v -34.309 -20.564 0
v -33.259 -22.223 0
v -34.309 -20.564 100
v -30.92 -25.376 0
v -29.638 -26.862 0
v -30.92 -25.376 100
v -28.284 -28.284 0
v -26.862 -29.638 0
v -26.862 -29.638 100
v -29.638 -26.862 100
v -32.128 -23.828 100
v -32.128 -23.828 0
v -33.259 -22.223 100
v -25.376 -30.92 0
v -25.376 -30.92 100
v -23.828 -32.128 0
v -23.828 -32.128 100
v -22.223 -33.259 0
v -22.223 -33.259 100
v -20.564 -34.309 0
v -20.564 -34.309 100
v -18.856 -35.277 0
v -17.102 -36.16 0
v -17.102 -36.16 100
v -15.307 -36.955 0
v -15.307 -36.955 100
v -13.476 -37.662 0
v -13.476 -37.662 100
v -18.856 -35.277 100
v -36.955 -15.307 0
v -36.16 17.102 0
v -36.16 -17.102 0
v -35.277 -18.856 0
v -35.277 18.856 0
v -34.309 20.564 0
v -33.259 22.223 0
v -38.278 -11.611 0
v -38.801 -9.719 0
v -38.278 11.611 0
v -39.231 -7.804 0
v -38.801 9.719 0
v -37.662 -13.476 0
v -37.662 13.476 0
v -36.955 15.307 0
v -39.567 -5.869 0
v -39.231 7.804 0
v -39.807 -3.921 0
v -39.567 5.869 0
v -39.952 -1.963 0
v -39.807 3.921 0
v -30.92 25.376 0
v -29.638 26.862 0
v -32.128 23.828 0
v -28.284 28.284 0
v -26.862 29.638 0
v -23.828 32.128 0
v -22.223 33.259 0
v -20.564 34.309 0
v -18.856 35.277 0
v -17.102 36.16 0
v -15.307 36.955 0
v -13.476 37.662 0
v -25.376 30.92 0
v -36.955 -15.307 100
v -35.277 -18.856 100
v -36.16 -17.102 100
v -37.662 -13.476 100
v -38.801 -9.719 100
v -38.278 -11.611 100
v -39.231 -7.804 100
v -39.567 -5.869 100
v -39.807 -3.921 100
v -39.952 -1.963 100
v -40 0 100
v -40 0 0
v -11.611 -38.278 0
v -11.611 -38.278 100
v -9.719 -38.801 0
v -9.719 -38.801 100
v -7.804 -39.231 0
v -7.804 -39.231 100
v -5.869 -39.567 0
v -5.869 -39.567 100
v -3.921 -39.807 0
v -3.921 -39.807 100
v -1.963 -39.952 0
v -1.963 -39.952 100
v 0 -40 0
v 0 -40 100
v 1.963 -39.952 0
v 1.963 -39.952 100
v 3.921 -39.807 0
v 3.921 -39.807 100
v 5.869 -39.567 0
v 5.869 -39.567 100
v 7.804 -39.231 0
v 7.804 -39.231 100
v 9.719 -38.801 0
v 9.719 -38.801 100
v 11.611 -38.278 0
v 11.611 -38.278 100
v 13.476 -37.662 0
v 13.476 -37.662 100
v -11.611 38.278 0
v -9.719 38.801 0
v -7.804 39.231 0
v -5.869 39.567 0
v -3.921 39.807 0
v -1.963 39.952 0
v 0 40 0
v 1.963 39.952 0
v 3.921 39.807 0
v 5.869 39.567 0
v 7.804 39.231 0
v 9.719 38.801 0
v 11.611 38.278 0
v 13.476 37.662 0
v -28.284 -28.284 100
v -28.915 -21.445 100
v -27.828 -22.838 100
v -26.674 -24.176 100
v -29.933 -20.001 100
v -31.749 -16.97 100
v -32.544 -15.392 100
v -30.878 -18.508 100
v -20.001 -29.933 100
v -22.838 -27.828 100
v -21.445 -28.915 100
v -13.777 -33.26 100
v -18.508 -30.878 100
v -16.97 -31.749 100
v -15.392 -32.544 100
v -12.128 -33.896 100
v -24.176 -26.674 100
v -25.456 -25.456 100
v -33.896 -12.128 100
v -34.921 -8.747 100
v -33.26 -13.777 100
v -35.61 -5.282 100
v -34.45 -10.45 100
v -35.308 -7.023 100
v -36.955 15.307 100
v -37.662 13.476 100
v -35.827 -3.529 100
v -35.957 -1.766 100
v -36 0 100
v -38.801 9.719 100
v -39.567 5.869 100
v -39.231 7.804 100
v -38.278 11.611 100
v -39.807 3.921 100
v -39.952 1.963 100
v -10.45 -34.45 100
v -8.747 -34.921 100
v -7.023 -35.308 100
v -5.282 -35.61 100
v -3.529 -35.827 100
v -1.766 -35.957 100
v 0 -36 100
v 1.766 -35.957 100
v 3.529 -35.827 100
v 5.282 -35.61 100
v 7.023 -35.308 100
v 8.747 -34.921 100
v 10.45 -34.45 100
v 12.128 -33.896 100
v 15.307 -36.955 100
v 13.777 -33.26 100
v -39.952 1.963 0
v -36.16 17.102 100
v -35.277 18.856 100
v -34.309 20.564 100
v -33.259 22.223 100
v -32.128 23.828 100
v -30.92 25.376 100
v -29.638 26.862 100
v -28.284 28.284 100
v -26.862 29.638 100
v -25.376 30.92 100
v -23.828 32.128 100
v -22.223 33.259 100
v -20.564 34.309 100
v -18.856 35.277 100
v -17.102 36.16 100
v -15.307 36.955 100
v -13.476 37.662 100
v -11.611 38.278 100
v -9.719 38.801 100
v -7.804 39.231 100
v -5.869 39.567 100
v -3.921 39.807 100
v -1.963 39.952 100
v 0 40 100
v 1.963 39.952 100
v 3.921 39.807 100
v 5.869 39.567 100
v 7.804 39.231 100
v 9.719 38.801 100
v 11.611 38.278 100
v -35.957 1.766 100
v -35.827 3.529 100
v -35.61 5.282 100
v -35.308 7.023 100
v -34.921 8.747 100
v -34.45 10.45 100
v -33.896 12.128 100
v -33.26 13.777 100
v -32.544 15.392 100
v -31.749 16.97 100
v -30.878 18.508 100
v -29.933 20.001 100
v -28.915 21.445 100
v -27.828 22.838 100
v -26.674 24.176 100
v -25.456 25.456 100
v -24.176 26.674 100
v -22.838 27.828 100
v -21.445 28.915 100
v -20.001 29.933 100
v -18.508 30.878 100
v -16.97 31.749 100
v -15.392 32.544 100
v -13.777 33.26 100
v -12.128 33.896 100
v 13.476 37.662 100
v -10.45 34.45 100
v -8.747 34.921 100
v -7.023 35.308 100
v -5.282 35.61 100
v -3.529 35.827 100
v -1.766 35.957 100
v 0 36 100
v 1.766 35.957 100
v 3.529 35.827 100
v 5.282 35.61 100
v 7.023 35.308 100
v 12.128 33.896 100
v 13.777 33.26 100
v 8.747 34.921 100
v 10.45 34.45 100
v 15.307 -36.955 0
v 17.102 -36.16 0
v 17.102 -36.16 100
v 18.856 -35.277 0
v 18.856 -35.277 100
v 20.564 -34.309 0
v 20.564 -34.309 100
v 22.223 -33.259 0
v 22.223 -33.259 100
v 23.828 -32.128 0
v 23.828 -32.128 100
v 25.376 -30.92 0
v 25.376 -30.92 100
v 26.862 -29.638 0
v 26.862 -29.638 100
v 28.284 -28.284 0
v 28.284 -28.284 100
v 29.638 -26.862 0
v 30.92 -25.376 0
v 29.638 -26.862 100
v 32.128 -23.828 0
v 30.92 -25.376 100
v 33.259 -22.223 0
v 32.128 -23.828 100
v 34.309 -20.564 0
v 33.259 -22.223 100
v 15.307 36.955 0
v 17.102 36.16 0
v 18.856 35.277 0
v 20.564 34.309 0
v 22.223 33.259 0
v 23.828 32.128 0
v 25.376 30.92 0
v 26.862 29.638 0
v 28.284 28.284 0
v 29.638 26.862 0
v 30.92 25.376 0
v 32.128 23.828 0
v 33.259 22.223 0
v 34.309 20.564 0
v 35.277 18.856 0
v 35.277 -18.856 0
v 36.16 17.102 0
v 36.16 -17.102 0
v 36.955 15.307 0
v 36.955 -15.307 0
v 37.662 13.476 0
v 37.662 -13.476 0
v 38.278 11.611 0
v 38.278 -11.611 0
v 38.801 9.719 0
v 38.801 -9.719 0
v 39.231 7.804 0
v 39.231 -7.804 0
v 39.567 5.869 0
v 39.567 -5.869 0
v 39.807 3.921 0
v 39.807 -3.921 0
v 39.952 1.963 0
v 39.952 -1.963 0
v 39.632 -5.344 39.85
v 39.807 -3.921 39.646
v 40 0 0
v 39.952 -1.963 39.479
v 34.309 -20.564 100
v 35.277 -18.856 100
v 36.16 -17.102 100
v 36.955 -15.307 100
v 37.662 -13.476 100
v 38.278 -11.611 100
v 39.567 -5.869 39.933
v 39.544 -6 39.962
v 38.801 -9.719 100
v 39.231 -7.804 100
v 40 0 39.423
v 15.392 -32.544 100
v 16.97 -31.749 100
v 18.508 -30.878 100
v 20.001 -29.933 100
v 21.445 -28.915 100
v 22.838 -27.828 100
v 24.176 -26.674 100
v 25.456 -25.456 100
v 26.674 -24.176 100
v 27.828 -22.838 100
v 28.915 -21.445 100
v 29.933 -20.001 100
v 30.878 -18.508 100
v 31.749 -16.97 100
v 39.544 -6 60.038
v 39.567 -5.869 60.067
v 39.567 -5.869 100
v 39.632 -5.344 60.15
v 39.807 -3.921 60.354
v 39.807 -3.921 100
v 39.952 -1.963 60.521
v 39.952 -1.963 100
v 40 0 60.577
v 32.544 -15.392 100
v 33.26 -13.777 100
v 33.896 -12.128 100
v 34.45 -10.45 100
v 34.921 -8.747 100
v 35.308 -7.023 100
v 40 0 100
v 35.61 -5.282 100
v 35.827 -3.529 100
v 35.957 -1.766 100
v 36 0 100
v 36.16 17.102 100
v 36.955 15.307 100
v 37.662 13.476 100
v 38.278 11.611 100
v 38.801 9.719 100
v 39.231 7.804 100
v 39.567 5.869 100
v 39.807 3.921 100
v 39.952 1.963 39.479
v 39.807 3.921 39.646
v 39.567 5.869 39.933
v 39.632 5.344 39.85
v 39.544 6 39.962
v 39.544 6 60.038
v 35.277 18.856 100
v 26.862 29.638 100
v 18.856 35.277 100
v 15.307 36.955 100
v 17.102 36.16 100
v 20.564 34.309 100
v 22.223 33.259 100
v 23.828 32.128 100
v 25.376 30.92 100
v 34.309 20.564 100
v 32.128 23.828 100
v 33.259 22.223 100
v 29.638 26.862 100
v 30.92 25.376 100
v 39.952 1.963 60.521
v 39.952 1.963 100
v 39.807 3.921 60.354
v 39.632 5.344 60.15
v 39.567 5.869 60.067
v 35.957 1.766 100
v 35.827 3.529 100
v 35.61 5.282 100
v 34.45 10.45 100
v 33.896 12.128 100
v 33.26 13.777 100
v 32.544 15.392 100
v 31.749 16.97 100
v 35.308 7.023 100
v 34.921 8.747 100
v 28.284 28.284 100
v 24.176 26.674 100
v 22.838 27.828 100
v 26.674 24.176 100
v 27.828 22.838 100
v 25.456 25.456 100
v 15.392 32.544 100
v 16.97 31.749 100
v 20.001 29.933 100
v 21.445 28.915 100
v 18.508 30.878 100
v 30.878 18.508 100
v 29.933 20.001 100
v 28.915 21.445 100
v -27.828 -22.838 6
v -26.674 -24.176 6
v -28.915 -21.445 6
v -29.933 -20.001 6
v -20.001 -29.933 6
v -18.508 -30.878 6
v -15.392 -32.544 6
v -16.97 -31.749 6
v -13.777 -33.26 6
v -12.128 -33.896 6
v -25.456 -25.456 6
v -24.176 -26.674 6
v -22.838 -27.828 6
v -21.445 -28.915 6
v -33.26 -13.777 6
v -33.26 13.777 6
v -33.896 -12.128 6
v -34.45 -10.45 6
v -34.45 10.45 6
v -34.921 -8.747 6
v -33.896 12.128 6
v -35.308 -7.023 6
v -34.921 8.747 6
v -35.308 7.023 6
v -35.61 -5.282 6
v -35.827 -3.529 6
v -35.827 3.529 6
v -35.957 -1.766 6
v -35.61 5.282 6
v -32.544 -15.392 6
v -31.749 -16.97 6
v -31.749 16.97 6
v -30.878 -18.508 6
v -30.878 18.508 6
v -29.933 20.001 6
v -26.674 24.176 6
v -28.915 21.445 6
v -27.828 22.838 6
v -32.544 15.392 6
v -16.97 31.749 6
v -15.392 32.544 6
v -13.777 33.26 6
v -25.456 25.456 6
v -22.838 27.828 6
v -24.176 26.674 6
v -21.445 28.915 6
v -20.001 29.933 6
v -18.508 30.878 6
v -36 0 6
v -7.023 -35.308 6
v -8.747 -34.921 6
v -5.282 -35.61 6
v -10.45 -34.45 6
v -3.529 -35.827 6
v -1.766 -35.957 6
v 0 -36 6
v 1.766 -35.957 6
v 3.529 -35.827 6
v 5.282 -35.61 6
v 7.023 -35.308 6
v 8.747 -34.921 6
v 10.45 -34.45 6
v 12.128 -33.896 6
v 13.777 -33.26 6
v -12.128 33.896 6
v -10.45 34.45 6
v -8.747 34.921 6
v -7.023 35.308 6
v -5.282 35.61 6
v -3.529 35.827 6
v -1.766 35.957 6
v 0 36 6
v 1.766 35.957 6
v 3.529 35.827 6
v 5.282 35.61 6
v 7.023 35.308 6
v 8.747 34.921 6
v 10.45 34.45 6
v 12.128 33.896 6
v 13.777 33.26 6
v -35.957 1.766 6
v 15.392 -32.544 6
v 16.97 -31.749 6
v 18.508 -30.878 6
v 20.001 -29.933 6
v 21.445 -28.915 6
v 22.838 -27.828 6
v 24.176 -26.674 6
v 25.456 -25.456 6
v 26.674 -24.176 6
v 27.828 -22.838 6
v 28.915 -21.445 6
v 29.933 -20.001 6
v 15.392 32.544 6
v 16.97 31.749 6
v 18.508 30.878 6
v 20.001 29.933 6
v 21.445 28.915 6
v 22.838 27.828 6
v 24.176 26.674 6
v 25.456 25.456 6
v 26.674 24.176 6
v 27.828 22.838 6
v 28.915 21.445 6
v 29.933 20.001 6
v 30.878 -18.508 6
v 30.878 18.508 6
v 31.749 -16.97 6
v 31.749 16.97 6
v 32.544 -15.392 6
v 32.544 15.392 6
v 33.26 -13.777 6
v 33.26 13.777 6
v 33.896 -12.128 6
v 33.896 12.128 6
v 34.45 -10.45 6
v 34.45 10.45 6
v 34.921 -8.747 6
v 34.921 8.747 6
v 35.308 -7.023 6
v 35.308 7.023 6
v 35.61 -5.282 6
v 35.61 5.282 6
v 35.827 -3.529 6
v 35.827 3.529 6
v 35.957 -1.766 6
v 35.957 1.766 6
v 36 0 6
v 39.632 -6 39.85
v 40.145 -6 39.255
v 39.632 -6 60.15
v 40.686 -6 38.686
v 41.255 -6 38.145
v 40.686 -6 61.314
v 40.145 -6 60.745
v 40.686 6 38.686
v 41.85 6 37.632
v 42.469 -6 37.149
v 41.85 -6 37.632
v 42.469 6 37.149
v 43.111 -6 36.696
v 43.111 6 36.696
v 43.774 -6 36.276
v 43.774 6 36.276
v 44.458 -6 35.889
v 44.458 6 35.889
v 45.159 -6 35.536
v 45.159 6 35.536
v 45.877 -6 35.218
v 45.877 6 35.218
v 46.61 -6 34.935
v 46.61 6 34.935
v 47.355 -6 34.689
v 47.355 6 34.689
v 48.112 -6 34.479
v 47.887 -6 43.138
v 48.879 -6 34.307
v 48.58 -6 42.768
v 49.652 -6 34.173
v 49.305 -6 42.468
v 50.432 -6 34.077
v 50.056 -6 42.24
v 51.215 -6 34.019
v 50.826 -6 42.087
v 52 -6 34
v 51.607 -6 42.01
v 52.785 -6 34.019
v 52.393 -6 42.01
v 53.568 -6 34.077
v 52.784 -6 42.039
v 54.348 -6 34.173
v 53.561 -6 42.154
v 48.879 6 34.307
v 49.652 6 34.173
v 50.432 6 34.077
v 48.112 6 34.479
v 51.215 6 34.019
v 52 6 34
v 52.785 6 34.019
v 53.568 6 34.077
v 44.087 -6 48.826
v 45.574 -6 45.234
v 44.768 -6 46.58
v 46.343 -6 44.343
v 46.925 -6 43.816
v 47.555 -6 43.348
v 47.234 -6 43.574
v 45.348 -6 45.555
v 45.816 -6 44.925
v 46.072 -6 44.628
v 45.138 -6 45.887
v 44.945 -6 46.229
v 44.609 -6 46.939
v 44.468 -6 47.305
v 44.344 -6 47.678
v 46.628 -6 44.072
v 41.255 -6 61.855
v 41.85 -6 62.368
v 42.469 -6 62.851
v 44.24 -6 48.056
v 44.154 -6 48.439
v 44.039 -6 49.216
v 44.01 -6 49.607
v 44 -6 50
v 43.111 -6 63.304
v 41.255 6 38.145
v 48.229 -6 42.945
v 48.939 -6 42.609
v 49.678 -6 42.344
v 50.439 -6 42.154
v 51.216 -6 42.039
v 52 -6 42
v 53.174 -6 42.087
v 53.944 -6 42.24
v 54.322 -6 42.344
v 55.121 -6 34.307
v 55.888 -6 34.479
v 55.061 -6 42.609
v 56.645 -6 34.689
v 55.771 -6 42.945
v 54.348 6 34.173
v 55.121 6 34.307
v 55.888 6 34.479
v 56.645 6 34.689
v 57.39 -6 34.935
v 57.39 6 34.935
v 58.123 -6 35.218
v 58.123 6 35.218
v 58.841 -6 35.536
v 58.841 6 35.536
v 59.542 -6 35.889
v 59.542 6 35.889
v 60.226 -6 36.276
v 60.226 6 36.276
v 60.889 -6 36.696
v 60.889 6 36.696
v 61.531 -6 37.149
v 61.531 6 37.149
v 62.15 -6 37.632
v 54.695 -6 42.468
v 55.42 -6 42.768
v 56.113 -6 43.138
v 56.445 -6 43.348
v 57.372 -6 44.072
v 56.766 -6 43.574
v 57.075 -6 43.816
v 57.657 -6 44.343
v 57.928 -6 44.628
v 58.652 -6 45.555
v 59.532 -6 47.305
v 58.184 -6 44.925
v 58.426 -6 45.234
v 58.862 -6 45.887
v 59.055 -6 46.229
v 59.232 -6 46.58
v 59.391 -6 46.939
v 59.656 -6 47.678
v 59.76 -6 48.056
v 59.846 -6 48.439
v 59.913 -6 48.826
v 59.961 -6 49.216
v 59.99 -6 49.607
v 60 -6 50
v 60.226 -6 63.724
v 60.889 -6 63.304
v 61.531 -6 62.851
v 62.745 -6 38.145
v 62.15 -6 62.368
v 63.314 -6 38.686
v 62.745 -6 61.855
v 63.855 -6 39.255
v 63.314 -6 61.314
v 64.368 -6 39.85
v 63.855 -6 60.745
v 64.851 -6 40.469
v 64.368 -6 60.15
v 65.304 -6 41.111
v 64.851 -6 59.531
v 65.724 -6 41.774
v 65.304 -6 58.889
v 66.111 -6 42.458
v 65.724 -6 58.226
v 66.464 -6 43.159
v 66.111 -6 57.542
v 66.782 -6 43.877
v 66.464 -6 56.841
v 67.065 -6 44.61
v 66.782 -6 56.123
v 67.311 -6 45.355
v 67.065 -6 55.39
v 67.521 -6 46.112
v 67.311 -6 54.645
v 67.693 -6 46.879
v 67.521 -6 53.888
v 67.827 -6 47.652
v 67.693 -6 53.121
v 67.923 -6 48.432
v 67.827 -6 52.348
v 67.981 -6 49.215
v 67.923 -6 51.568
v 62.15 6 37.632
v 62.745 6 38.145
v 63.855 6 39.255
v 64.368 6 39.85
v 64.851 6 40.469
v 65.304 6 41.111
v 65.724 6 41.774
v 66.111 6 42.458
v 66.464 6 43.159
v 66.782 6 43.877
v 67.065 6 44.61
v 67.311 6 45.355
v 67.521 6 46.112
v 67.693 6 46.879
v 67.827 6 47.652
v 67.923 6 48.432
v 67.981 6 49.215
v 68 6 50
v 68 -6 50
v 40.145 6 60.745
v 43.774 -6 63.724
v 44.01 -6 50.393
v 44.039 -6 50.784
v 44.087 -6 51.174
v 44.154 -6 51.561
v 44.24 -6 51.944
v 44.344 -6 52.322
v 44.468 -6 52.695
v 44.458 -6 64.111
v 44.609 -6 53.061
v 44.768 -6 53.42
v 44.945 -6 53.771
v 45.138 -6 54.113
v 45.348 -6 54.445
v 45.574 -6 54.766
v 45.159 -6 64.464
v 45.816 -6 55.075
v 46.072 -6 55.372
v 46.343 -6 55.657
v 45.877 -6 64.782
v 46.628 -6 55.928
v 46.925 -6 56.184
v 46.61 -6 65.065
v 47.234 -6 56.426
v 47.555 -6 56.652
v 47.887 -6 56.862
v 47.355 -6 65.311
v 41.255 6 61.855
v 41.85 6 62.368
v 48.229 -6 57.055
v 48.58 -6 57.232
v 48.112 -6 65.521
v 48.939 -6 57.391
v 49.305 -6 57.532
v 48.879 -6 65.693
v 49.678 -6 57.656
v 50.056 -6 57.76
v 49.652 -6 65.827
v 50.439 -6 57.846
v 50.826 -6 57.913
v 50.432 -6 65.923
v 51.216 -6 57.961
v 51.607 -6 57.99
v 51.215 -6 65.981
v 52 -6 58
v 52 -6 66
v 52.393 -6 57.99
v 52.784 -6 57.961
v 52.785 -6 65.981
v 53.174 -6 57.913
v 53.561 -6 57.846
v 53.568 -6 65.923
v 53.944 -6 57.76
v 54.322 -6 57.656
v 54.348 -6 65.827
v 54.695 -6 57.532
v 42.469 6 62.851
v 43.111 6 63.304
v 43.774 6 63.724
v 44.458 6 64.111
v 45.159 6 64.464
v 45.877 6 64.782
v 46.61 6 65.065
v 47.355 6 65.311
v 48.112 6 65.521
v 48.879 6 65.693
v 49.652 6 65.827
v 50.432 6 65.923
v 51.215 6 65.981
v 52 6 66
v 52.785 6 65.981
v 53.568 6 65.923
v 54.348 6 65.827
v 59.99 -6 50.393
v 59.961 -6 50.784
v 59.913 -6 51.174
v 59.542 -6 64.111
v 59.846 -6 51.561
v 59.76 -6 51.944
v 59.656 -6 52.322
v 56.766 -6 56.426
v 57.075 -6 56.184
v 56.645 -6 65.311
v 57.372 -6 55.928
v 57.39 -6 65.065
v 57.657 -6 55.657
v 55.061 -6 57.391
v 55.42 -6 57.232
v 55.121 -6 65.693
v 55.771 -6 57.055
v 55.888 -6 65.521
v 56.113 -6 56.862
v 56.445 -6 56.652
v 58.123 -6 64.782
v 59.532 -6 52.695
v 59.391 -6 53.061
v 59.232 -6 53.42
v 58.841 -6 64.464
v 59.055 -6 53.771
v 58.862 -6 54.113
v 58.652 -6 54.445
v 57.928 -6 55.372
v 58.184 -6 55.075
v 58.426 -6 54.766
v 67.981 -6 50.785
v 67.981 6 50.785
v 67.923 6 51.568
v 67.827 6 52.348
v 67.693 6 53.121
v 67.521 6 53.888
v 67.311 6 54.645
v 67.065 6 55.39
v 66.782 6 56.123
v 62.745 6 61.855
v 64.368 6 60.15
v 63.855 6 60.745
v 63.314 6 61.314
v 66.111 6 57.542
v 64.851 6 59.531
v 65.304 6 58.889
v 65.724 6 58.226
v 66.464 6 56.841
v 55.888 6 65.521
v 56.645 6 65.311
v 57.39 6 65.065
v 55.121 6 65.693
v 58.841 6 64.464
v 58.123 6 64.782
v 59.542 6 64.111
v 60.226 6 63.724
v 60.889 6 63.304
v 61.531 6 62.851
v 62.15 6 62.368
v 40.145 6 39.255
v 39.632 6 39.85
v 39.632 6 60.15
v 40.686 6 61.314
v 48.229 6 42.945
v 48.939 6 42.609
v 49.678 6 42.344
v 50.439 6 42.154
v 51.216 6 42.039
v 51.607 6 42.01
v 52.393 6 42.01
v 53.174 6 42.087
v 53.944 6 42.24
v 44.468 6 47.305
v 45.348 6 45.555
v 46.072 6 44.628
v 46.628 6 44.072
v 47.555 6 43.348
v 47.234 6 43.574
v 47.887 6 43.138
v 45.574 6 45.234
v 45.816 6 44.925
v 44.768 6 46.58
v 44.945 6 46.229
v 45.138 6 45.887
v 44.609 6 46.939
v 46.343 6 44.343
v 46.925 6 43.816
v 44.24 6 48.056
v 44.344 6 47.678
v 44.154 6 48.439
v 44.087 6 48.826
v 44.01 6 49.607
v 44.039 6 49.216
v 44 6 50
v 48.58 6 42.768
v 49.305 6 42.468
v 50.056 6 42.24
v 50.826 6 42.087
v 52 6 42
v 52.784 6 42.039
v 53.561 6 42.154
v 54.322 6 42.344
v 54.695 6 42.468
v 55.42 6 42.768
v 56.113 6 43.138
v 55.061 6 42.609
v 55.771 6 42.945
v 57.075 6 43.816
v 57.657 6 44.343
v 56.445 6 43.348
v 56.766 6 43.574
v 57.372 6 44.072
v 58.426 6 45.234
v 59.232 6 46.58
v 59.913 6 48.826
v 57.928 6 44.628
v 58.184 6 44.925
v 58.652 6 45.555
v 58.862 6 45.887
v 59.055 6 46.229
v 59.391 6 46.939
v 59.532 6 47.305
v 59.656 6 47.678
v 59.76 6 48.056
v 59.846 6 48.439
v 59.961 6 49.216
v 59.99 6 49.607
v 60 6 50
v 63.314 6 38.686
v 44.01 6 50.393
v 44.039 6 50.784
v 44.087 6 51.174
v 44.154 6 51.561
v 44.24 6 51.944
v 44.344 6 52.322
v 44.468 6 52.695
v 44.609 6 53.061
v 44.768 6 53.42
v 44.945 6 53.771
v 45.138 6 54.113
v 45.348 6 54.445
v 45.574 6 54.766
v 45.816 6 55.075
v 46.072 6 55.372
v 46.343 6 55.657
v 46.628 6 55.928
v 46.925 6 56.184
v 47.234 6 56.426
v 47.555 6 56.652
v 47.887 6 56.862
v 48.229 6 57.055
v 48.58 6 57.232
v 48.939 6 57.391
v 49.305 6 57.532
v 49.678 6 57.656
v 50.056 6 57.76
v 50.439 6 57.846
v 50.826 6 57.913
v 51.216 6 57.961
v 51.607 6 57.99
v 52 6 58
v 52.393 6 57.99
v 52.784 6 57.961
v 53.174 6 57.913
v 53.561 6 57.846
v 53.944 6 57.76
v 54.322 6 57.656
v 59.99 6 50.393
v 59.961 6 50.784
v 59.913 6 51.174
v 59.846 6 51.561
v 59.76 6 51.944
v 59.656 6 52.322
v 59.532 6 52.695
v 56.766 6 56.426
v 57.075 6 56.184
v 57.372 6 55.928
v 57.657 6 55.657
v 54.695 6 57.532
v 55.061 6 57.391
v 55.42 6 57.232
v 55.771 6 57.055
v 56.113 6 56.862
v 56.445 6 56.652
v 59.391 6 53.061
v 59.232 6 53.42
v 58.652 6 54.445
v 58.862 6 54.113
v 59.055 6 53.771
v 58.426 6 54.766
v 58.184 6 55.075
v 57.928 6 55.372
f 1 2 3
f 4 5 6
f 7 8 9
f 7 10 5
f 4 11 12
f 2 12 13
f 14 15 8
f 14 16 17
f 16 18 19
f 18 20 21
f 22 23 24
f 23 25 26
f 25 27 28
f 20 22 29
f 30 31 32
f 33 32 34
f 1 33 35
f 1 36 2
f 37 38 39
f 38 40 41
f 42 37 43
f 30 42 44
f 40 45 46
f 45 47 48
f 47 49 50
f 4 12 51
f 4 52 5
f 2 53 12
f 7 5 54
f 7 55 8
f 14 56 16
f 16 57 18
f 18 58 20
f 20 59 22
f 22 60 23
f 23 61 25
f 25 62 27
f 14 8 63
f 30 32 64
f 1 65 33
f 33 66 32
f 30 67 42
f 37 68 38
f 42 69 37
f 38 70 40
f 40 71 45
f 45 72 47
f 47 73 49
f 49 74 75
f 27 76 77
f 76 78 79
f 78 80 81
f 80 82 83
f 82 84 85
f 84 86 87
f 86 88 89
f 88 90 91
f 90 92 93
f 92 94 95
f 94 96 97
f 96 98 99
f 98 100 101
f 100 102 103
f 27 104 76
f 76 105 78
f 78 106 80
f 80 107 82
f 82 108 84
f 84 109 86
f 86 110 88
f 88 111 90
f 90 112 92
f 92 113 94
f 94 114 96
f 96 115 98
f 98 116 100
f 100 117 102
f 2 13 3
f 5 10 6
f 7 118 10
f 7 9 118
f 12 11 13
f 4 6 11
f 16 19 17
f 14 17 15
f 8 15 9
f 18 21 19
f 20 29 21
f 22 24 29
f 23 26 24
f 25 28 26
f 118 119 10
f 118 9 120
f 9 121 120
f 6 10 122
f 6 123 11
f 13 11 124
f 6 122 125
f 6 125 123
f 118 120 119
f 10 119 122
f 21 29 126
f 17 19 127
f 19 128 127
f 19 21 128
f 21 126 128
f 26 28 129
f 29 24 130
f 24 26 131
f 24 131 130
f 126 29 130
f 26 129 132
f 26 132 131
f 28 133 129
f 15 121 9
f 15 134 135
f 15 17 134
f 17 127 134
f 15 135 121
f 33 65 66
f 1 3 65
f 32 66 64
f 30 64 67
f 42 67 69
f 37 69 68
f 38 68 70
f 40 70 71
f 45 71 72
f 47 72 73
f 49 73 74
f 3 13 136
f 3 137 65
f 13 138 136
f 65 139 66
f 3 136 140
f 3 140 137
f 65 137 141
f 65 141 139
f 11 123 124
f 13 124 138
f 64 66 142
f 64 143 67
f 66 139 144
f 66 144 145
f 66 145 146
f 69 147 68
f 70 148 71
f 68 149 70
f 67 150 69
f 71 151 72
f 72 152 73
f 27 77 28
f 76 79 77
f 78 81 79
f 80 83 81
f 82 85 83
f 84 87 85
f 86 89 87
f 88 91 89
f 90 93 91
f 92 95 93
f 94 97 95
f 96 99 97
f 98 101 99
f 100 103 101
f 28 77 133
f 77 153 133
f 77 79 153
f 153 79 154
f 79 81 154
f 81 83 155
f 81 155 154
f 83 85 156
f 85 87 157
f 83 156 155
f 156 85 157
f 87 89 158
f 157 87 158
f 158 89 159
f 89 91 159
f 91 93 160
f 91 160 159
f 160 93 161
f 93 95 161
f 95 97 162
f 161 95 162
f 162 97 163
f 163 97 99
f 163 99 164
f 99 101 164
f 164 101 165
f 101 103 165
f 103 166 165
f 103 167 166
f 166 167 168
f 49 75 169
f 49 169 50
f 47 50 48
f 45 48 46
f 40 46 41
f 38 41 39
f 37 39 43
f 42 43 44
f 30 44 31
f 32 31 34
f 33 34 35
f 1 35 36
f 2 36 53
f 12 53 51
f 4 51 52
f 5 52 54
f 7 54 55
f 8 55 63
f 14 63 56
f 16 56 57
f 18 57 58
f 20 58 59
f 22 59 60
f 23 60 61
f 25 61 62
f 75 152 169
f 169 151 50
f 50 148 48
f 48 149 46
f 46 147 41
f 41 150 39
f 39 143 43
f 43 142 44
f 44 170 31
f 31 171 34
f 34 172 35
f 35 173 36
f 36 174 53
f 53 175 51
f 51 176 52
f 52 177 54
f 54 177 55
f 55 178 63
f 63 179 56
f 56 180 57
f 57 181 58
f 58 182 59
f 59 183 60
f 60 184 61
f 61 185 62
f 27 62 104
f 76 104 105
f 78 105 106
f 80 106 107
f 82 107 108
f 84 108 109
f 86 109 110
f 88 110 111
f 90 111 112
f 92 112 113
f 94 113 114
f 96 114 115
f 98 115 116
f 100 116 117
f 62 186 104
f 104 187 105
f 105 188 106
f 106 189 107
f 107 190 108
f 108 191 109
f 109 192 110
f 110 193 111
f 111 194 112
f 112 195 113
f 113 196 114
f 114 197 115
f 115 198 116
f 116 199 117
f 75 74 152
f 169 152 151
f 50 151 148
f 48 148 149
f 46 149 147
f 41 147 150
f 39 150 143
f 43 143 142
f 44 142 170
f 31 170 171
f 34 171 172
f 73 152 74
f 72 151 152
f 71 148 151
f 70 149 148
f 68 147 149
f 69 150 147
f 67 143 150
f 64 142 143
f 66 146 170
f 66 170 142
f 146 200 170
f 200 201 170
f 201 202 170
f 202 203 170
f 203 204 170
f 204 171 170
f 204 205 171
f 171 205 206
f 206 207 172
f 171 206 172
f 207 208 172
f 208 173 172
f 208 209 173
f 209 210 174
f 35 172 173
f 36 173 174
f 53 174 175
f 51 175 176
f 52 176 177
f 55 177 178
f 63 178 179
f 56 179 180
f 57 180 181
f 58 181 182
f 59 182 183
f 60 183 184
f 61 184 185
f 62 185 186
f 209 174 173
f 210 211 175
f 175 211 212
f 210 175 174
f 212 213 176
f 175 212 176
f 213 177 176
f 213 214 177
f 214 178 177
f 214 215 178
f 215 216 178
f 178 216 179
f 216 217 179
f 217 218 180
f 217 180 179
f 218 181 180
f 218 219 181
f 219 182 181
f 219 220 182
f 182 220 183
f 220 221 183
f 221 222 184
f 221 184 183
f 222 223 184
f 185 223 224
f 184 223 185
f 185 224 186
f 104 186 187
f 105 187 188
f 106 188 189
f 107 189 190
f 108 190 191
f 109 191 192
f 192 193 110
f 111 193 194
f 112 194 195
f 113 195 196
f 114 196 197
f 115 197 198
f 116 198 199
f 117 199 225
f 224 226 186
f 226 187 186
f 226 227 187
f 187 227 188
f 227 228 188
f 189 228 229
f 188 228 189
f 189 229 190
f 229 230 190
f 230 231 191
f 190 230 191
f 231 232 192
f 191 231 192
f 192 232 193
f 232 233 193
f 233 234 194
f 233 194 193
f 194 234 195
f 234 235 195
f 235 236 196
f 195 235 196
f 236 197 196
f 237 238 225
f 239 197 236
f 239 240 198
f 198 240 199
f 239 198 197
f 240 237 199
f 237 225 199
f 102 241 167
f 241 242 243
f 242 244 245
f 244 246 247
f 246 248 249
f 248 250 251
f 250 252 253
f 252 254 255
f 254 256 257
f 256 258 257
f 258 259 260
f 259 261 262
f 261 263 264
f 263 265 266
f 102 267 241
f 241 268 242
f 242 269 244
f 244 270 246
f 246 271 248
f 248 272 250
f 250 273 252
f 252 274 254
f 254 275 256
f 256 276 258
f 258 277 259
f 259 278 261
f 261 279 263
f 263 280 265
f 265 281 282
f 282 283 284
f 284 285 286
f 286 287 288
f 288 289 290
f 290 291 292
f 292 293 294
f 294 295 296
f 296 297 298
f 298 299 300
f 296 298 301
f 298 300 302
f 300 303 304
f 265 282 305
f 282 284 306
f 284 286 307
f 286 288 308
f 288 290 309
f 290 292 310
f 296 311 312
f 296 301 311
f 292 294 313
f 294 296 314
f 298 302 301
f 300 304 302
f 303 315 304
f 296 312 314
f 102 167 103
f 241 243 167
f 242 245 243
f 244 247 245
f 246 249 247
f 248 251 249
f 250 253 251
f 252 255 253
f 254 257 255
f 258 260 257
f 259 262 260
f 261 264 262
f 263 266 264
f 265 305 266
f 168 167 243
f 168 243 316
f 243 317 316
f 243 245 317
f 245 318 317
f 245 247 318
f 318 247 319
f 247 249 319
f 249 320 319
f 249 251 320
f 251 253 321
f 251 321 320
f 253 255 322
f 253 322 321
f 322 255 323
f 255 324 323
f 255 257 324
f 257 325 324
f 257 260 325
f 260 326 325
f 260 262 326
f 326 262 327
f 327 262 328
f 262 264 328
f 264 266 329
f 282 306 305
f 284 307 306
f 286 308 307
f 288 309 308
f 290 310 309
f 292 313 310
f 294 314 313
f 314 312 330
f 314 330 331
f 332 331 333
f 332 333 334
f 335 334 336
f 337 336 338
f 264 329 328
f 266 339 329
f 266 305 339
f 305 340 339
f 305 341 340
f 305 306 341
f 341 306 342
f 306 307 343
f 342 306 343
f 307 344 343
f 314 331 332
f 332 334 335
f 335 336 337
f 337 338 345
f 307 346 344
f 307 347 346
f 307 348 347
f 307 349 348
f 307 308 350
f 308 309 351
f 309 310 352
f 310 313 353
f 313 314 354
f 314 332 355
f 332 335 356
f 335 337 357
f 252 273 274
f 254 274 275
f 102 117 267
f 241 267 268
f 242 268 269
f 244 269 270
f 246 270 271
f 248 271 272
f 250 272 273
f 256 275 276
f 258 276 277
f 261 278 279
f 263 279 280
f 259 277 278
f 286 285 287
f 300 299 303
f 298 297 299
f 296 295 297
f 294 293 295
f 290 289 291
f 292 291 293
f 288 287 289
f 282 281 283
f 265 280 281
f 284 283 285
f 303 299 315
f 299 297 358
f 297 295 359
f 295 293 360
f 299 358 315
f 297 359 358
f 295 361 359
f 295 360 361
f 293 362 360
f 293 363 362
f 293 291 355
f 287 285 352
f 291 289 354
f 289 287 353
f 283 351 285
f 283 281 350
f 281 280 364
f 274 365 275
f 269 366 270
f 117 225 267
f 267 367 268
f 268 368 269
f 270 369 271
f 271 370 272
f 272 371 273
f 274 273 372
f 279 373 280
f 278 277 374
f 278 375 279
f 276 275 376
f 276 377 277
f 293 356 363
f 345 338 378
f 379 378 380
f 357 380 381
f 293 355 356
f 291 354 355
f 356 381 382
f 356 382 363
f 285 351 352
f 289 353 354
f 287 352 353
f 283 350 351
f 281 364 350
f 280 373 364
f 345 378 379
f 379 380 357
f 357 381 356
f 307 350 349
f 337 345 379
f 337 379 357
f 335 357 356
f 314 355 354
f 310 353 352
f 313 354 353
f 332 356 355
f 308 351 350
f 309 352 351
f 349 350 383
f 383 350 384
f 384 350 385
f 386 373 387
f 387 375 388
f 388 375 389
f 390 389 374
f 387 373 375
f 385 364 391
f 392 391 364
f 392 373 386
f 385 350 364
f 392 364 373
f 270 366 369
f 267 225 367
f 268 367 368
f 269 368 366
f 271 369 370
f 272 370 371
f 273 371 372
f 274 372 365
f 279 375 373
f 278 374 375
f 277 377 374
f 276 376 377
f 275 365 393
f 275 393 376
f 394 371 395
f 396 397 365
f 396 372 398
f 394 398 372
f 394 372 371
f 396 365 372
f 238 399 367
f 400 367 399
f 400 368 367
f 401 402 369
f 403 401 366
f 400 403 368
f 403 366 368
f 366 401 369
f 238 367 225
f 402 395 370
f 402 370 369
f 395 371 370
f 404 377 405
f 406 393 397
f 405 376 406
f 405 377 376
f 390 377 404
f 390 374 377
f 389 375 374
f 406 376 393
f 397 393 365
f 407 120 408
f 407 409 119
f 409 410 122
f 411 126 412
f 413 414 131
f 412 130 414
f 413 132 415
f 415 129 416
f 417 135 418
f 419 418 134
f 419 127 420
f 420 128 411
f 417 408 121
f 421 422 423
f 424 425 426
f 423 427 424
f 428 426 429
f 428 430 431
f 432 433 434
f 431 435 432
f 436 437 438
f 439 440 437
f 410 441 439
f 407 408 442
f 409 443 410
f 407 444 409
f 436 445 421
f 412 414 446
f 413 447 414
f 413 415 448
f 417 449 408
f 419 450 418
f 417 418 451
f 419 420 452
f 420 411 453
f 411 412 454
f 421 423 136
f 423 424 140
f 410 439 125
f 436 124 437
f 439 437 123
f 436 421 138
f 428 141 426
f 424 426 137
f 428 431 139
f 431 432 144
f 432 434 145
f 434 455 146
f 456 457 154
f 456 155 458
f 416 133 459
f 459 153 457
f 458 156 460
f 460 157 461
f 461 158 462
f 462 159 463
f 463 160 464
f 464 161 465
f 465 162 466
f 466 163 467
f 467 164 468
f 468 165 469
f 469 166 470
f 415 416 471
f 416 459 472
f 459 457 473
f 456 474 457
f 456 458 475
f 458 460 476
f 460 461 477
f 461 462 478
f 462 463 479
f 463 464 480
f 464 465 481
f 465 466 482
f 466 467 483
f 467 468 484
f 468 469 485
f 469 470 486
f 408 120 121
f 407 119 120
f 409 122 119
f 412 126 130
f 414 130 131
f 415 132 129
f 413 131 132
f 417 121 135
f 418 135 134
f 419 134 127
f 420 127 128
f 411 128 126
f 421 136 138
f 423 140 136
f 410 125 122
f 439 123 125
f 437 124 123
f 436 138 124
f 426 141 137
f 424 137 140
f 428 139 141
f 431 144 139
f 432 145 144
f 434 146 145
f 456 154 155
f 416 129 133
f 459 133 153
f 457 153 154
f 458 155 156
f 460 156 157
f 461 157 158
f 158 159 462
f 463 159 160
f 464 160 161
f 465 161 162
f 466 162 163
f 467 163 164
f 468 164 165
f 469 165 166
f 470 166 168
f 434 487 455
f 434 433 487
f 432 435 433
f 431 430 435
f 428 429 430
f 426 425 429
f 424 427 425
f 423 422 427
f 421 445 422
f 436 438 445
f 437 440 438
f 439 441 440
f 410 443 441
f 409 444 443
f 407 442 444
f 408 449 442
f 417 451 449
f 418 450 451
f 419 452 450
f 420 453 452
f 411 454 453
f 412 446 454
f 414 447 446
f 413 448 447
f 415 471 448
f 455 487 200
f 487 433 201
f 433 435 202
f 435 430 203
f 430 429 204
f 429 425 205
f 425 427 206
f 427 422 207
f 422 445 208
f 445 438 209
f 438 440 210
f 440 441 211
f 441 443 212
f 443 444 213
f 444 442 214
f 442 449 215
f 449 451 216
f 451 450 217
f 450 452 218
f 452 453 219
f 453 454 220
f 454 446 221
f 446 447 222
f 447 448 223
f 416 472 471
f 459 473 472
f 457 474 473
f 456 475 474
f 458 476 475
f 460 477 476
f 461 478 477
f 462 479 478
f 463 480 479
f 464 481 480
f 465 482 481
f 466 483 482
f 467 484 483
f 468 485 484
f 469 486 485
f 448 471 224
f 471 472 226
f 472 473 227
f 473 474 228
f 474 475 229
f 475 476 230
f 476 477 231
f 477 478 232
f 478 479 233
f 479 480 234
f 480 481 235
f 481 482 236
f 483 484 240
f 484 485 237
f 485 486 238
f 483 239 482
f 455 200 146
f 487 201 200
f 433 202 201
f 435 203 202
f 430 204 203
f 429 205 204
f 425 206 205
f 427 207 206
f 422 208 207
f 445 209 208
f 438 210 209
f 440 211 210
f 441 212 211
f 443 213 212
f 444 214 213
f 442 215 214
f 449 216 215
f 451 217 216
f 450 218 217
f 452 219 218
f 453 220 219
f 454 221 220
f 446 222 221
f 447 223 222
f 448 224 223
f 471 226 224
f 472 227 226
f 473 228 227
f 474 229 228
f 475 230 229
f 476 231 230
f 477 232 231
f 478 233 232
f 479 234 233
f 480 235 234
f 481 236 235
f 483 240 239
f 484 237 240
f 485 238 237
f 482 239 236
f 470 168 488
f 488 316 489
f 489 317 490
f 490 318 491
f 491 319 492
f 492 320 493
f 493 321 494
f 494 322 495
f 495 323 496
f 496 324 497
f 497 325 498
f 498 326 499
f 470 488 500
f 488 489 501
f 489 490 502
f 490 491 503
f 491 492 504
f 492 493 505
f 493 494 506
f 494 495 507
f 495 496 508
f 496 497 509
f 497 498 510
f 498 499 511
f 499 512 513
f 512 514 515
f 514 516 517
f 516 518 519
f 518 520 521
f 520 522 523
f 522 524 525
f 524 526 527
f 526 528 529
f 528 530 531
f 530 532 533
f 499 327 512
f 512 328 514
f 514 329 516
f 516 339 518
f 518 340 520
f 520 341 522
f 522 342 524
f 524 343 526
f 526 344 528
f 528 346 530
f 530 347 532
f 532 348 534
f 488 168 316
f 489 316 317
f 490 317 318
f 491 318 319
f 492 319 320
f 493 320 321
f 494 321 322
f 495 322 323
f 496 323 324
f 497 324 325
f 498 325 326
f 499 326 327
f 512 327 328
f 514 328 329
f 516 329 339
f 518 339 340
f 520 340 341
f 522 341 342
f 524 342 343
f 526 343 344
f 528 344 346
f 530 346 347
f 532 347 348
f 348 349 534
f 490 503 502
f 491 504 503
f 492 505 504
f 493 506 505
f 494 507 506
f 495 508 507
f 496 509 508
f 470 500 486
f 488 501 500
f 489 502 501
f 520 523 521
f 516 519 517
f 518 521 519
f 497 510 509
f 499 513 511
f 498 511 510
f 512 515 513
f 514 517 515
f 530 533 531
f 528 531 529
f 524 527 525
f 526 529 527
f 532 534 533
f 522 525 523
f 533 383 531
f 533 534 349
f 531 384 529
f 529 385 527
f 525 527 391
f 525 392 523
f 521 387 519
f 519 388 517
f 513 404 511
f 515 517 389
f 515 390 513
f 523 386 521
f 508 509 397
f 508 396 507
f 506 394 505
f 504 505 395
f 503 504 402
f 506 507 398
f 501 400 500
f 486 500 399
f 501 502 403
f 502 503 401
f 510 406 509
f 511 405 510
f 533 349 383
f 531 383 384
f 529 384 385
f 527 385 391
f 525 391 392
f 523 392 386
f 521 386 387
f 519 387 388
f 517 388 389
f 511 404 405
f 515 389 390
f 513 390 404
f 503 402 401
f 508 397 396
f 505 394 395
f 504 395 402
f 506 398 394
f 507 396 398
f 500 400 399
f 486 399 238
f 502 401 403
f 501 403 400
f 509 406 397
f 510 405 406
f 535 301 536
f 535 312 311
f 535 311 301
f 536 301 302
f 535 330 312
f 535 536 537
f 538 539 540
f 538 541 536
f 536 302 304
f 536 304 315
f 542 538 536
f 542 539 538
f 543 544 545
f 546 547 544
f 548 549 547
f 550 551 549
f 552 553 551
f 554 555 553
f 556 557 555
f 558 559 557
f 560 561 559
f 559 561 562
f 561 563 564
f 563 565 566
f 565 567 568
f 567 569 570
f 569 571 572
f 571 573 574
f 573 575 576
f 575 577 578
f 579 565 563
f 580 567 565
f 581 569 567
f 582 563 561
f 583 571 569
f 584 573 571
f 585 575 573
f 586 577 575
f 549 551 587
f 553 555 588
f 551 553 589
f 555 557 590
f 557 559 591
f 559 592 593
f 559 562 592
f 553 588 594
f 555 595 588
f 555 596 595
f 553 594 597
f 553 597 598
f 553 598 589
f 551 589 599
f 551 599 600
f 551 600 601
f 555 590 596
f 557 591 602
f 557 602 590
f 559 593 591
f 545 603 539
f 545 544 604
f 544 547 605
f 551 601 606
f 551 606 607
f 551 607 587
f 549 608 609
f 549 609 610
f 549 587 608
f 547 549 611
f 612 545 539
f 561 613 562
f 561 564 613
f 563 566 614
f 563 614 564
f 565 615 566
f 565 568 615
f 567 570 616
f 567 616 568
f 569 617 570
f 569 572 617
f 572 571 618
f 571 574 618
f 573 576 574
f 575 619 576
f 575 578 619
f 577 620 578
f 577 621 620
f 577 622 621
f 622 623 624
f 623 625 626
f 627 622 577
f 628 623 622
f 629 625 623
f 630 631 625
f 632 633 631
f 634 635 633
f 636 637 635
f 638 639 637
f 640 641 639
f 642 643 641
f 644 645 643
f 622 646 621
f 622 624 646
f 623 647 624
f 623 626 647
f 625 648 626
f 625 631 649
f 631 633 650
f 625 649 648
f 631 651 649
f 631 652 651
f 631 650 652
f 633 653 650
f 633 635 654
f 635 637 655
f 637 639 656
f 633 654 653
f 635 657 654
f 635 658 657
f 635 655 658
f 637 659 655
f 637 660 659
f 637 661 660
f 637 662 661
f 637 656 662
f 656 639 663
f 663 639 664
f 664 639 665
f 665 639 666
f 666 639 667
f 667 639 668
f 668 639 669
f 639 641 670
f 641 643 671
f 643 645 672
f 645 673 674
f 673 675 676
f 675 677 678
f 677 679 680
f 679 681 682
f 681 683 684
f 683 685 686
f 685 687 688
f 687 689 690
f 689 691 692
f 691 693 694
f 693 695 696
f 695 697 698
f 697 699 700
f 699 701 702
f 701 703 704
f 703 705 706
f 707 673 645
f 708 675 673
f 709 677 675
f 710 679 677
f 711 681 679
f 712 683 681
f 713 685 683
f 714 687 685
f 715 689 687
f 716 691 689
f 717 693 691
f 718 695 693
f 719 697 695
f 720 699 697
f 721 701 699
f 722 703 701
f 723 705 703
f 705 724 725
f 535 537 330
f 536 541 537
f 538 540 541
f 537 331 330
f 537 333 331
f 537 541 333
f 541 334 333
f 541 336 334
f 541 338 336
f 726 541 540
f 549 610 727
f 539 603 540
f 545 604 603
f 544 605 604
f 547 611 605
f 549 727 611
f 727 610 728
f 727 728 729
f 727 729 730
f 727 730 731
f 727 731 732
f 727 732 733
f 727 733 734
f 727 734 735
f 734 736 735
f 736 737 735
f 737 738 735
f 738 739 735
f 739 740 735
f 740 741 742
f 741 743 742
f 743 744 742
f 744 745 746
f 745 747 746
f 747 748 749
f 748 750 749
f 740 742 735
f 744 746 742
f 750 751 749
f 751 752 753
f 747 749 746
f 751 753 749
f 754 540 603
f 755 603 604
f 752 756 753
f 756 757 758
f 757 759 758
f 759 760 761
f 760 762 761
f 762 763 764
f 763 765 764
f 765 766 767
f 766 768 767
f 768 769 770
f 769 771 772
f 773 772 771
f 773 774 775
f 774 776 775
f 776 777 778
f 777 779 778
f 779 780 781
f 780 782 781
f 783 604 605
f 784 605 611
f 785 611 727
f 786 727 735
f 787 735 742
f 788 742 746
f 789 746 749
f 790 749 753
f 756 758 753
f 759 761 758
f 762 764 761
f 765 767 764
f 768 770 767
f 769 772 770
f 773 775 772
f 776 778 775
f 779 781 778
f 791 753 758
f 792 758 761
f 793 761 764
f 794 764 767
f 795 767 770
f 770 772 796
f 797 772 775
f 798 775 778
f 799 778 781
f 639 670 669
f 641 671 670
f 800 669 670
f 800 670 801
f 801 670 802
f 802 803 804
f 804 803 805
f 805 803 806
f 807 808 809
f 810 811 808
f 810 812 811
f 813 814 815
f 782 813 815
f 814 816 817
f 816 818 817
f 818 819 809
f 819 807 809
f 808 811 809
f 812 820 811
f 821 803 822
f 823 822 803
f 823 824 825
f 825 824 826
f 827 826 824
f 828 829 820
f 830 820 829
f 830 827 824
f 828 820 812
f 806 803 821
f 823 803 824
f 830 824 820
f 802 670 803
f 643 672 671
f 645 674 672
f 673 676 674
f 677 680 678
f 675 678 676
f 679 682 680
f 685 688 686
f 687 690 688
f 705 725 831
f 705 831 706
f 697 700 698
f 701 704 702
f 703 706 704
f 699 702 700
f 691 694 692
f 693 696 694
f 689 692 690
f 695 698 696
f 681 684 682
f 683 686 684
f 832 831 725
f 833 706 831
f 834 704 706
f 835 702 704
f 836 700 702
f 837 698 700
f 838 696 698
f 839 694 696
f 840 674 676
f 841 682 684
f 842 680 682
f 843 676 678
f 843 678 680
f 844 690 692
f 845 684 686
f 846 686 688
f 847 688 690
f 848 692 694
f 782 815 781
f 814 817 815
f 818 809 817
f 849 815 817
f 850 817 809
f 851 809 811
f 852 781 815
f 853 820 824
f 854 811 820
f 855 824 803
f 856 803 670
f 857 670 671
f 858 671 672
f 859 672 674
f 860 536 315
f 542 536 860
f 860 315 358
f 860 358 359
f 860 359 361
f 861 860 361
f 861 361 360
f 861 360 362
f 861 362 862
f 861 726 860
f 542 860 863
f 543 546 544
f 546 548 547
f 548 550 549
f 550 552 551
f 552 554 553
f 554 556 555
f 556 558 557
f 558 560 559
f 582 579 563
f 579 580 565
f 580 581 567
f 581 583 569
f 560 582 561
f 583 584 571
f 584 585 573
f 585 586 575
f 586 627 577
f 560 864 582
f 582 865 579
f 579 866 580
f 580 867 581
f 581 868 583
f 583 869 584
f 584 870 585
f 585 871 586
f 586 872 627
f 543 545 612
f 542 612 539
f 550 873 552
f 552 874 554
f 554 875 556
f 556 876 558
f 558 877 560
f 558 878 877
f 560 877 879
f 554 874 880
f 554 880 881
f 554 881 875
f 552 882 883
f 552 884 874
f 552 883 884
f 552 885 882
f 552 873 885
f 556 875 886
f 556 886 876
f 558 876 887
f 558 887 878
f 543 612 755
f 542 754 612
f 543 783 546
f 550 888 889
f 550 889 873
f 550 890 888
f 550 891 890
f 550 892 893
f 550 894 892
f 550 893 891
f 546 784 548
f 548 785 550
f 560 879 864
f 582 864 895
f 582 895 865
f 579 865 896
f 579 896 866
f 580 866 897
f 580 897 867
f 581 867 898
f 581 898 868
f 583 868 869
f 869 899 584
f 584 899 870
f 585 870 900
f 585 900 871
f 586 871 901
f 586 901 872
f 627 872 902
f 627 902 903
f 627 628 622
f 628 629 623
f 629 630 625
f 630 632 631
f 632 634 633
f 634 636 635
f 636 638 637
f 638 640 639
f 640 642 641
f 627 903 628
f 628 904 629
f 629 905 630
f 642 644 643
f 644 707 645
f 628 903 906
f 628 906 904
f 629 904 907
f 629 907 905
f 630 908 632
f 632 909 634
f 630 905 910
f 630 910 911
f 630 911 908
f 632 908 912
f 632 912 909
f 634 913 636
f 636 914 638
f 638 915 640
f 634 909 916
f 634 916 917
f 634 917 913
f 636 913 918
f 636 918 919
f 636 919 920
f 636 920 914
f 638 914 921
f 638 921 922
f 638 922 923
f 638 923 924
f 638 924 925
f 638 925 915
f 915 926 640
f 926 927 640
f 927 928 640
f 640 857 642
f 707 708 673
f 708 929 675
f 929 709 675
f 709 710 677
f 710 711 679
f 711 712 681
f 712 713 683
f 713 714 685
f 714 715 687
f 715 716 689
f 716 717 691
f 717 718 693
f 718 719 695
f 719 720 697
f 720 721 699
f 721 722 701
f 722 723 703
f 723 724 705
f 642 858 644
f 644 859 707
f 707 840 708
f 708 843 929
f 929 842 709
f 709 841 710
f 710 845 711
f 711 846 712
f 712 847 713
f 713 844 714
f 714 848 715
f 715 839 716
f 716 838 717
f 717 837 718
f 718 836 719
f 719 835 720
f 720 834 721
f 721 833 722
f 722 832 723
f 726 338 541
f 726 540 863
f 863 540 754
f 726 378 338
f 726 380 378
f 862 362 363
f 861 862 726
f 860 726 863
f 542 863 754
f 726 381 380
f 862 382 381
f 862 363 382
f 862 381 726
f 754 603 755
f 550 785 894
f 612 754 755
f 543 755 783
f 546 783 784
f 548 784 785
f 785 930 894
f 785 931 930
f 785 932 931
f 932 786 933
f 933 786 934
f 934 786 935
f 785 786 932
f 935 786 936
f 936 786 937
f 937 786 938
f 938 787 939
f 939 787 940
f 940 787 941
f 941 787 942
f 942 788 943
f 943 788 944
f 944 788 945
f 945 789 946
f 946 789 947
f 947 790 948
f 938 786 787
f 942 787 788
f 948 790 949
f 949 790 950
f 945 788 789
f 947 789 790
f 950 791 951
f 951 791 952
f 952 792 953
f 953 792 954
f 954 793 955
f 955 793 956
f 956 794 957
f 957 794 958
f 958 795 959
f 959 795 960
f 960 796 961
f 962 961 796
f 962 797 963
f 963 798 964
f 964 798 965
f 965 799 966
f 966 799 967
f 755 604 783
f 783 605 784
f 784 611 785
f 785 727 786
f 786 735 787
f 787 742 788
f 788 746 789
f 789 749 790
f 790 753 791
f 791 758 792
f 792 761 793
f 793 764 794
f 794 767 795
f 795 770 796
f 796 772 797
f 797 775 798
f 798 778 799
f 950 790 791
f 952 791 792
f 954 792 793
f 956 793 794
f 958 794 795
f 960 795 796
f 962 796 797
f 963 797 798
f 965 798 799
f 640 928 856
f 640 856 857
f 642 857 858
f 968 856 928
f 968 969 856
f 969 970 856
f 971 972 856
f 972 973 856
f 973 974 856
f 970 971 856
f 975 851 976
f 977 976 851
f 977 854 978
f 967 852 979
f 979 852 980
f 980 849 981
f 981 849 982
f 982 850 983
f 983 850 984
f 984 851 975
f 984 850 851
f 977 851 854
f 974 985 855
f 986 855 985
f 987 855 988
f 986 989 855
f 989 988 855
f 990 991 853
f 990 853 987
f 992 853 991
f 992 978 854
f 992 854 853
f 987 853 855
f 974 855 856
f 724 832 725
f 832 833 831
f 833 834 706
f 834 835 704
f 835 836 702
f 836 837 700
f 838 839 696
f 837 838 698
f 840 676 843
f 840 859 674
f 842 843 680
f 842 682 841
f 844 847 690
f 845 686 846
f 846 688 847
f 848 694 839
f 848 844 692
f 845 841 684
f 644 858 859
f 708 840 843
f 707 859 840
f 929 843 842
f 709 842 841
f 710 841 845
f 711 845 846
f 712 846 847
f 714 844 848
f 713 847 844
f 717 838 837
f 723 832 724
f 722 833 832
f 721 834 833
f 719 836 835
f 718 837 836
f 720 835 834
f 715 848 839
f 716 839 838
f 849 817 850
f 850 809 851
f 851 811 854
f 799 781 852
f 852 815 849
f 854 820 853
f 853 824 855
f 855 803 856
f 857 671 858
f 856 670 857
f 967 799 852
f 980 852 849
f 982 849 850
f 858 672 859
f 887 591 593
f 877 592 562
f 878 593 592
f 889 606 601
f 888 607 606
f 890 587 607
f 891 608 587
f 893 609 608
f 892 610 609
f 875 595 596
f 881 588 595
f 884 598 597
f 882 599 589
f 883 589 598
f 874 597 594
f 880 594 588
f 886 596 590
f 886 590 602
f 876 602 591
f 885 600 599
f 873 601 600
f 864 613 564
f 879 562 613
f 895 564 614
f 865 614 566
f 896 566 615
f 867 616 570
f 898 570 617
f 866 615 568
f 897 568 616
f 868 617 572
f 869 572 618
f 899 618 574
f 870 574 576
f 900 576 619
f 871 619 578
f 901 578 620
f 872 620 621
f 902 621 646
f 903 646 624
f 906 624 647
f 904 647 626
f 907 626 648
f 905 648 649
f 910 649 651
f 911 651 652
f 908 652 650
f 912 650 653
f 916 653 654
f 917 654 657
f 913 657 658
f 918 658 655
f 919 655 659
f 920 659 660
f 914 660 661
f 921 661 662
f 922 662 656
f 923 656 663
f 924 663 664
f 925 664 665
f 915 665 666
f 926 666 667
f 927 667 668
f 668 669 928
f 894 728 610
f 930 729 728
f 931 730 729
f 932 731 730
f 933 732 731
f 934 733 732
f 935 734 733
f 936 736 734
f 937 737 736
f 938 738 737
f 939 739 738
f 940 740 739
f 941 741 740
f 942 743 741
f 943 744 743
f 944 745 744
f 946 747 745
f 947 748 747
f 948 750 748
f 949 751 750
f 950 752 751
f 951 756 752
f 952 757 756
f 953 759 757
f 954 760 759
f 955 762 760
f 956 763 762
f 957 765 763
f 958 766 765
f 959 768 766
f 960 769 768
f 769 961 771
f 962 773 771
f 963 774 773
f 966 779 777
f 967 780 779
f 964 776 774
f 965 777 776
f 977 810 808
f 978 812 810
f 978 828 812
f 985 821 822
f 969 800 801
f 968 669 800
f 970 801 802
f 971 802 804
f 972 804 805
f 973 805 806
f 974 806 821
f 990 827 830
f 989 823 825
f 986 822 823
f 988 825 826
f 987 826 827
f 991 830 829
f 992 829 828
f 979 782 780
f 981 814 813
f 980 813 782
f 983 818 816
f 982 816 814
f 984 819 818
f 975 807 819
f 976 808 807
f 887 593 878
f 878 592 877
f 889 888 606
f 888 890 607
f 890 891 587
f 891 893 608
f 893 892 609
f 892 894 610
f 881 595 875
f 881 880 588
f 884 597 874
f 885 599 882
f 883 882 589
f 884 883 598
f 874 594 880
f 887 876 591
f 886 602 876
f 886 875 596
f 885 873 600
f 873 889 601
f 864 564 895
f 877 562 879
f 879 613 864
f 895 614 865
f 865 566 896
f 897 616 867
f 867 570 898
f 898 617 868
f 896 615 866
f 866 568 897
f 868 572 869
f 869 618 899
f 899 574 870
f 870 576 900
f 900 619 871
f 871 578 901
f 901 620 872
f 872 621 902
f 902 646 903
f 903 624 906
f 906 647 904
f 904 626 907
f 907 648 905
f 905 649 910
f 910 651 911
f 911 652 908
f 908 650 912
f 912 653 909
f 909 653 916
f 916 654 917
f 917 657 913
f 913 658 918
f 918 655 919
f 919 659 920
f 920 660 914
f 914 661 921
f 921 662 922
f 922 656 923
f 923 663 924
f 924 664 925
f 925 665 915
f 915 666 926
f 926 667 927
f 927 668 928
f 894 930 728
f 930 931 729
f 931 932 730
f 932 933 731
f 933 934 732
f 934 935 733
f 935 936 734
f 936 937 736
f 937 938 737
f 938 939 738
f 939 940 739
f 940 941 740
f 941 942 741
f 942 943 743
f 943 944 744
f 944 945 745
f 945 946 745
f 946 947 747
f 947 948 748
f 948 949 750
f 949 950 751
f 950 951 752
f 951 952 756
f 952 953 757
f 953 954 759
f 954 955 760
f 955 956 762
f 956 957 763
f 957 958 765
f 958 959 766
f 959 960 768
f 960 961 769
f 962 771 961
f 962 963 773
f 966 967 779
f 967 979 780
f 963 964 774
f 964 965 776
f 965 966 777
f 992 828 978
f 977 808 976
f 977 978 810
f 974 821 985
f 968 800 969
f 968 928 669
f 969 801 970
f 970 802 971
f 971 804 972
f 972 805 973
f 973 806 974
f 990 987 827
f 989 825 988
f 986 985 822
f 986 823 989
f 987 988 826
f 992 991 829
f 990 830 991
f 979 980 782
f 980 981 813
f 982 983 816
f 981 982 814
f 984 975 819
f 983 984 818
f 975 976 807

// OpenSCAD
$fn = 128;

outer_d = 80;
H = 100;
wall = 4;
bottom_t = 6;
inner_d = outer_d - 2 * wall;

handle_r = 12;
handle_width = 8;
handle_depth = 12;
handle_cx = 52;

module cup() {
    difference() {
        cylinder(d = outer_d, h = H);
        translate([0, 0, bottom_t]) {
            cylinder(d = inner_d, h = H);
        }
    }
}

module handle() {
    translate([handle_cx, 0, H / 2]) {
        rotate([90, 0, 0]) {
            translate([0, 0, -handle_depth / 2]) {
                difference() {
                    cylinder(d = 2 * (handle_r + handle_width / 2), h = handle_depth);
                    cylinder(d = 2 * (handle_r - handle_width / 2), h = handle_depth);
                }
            }
        }
    }
}

union() {
    cup();
    handle();
}
